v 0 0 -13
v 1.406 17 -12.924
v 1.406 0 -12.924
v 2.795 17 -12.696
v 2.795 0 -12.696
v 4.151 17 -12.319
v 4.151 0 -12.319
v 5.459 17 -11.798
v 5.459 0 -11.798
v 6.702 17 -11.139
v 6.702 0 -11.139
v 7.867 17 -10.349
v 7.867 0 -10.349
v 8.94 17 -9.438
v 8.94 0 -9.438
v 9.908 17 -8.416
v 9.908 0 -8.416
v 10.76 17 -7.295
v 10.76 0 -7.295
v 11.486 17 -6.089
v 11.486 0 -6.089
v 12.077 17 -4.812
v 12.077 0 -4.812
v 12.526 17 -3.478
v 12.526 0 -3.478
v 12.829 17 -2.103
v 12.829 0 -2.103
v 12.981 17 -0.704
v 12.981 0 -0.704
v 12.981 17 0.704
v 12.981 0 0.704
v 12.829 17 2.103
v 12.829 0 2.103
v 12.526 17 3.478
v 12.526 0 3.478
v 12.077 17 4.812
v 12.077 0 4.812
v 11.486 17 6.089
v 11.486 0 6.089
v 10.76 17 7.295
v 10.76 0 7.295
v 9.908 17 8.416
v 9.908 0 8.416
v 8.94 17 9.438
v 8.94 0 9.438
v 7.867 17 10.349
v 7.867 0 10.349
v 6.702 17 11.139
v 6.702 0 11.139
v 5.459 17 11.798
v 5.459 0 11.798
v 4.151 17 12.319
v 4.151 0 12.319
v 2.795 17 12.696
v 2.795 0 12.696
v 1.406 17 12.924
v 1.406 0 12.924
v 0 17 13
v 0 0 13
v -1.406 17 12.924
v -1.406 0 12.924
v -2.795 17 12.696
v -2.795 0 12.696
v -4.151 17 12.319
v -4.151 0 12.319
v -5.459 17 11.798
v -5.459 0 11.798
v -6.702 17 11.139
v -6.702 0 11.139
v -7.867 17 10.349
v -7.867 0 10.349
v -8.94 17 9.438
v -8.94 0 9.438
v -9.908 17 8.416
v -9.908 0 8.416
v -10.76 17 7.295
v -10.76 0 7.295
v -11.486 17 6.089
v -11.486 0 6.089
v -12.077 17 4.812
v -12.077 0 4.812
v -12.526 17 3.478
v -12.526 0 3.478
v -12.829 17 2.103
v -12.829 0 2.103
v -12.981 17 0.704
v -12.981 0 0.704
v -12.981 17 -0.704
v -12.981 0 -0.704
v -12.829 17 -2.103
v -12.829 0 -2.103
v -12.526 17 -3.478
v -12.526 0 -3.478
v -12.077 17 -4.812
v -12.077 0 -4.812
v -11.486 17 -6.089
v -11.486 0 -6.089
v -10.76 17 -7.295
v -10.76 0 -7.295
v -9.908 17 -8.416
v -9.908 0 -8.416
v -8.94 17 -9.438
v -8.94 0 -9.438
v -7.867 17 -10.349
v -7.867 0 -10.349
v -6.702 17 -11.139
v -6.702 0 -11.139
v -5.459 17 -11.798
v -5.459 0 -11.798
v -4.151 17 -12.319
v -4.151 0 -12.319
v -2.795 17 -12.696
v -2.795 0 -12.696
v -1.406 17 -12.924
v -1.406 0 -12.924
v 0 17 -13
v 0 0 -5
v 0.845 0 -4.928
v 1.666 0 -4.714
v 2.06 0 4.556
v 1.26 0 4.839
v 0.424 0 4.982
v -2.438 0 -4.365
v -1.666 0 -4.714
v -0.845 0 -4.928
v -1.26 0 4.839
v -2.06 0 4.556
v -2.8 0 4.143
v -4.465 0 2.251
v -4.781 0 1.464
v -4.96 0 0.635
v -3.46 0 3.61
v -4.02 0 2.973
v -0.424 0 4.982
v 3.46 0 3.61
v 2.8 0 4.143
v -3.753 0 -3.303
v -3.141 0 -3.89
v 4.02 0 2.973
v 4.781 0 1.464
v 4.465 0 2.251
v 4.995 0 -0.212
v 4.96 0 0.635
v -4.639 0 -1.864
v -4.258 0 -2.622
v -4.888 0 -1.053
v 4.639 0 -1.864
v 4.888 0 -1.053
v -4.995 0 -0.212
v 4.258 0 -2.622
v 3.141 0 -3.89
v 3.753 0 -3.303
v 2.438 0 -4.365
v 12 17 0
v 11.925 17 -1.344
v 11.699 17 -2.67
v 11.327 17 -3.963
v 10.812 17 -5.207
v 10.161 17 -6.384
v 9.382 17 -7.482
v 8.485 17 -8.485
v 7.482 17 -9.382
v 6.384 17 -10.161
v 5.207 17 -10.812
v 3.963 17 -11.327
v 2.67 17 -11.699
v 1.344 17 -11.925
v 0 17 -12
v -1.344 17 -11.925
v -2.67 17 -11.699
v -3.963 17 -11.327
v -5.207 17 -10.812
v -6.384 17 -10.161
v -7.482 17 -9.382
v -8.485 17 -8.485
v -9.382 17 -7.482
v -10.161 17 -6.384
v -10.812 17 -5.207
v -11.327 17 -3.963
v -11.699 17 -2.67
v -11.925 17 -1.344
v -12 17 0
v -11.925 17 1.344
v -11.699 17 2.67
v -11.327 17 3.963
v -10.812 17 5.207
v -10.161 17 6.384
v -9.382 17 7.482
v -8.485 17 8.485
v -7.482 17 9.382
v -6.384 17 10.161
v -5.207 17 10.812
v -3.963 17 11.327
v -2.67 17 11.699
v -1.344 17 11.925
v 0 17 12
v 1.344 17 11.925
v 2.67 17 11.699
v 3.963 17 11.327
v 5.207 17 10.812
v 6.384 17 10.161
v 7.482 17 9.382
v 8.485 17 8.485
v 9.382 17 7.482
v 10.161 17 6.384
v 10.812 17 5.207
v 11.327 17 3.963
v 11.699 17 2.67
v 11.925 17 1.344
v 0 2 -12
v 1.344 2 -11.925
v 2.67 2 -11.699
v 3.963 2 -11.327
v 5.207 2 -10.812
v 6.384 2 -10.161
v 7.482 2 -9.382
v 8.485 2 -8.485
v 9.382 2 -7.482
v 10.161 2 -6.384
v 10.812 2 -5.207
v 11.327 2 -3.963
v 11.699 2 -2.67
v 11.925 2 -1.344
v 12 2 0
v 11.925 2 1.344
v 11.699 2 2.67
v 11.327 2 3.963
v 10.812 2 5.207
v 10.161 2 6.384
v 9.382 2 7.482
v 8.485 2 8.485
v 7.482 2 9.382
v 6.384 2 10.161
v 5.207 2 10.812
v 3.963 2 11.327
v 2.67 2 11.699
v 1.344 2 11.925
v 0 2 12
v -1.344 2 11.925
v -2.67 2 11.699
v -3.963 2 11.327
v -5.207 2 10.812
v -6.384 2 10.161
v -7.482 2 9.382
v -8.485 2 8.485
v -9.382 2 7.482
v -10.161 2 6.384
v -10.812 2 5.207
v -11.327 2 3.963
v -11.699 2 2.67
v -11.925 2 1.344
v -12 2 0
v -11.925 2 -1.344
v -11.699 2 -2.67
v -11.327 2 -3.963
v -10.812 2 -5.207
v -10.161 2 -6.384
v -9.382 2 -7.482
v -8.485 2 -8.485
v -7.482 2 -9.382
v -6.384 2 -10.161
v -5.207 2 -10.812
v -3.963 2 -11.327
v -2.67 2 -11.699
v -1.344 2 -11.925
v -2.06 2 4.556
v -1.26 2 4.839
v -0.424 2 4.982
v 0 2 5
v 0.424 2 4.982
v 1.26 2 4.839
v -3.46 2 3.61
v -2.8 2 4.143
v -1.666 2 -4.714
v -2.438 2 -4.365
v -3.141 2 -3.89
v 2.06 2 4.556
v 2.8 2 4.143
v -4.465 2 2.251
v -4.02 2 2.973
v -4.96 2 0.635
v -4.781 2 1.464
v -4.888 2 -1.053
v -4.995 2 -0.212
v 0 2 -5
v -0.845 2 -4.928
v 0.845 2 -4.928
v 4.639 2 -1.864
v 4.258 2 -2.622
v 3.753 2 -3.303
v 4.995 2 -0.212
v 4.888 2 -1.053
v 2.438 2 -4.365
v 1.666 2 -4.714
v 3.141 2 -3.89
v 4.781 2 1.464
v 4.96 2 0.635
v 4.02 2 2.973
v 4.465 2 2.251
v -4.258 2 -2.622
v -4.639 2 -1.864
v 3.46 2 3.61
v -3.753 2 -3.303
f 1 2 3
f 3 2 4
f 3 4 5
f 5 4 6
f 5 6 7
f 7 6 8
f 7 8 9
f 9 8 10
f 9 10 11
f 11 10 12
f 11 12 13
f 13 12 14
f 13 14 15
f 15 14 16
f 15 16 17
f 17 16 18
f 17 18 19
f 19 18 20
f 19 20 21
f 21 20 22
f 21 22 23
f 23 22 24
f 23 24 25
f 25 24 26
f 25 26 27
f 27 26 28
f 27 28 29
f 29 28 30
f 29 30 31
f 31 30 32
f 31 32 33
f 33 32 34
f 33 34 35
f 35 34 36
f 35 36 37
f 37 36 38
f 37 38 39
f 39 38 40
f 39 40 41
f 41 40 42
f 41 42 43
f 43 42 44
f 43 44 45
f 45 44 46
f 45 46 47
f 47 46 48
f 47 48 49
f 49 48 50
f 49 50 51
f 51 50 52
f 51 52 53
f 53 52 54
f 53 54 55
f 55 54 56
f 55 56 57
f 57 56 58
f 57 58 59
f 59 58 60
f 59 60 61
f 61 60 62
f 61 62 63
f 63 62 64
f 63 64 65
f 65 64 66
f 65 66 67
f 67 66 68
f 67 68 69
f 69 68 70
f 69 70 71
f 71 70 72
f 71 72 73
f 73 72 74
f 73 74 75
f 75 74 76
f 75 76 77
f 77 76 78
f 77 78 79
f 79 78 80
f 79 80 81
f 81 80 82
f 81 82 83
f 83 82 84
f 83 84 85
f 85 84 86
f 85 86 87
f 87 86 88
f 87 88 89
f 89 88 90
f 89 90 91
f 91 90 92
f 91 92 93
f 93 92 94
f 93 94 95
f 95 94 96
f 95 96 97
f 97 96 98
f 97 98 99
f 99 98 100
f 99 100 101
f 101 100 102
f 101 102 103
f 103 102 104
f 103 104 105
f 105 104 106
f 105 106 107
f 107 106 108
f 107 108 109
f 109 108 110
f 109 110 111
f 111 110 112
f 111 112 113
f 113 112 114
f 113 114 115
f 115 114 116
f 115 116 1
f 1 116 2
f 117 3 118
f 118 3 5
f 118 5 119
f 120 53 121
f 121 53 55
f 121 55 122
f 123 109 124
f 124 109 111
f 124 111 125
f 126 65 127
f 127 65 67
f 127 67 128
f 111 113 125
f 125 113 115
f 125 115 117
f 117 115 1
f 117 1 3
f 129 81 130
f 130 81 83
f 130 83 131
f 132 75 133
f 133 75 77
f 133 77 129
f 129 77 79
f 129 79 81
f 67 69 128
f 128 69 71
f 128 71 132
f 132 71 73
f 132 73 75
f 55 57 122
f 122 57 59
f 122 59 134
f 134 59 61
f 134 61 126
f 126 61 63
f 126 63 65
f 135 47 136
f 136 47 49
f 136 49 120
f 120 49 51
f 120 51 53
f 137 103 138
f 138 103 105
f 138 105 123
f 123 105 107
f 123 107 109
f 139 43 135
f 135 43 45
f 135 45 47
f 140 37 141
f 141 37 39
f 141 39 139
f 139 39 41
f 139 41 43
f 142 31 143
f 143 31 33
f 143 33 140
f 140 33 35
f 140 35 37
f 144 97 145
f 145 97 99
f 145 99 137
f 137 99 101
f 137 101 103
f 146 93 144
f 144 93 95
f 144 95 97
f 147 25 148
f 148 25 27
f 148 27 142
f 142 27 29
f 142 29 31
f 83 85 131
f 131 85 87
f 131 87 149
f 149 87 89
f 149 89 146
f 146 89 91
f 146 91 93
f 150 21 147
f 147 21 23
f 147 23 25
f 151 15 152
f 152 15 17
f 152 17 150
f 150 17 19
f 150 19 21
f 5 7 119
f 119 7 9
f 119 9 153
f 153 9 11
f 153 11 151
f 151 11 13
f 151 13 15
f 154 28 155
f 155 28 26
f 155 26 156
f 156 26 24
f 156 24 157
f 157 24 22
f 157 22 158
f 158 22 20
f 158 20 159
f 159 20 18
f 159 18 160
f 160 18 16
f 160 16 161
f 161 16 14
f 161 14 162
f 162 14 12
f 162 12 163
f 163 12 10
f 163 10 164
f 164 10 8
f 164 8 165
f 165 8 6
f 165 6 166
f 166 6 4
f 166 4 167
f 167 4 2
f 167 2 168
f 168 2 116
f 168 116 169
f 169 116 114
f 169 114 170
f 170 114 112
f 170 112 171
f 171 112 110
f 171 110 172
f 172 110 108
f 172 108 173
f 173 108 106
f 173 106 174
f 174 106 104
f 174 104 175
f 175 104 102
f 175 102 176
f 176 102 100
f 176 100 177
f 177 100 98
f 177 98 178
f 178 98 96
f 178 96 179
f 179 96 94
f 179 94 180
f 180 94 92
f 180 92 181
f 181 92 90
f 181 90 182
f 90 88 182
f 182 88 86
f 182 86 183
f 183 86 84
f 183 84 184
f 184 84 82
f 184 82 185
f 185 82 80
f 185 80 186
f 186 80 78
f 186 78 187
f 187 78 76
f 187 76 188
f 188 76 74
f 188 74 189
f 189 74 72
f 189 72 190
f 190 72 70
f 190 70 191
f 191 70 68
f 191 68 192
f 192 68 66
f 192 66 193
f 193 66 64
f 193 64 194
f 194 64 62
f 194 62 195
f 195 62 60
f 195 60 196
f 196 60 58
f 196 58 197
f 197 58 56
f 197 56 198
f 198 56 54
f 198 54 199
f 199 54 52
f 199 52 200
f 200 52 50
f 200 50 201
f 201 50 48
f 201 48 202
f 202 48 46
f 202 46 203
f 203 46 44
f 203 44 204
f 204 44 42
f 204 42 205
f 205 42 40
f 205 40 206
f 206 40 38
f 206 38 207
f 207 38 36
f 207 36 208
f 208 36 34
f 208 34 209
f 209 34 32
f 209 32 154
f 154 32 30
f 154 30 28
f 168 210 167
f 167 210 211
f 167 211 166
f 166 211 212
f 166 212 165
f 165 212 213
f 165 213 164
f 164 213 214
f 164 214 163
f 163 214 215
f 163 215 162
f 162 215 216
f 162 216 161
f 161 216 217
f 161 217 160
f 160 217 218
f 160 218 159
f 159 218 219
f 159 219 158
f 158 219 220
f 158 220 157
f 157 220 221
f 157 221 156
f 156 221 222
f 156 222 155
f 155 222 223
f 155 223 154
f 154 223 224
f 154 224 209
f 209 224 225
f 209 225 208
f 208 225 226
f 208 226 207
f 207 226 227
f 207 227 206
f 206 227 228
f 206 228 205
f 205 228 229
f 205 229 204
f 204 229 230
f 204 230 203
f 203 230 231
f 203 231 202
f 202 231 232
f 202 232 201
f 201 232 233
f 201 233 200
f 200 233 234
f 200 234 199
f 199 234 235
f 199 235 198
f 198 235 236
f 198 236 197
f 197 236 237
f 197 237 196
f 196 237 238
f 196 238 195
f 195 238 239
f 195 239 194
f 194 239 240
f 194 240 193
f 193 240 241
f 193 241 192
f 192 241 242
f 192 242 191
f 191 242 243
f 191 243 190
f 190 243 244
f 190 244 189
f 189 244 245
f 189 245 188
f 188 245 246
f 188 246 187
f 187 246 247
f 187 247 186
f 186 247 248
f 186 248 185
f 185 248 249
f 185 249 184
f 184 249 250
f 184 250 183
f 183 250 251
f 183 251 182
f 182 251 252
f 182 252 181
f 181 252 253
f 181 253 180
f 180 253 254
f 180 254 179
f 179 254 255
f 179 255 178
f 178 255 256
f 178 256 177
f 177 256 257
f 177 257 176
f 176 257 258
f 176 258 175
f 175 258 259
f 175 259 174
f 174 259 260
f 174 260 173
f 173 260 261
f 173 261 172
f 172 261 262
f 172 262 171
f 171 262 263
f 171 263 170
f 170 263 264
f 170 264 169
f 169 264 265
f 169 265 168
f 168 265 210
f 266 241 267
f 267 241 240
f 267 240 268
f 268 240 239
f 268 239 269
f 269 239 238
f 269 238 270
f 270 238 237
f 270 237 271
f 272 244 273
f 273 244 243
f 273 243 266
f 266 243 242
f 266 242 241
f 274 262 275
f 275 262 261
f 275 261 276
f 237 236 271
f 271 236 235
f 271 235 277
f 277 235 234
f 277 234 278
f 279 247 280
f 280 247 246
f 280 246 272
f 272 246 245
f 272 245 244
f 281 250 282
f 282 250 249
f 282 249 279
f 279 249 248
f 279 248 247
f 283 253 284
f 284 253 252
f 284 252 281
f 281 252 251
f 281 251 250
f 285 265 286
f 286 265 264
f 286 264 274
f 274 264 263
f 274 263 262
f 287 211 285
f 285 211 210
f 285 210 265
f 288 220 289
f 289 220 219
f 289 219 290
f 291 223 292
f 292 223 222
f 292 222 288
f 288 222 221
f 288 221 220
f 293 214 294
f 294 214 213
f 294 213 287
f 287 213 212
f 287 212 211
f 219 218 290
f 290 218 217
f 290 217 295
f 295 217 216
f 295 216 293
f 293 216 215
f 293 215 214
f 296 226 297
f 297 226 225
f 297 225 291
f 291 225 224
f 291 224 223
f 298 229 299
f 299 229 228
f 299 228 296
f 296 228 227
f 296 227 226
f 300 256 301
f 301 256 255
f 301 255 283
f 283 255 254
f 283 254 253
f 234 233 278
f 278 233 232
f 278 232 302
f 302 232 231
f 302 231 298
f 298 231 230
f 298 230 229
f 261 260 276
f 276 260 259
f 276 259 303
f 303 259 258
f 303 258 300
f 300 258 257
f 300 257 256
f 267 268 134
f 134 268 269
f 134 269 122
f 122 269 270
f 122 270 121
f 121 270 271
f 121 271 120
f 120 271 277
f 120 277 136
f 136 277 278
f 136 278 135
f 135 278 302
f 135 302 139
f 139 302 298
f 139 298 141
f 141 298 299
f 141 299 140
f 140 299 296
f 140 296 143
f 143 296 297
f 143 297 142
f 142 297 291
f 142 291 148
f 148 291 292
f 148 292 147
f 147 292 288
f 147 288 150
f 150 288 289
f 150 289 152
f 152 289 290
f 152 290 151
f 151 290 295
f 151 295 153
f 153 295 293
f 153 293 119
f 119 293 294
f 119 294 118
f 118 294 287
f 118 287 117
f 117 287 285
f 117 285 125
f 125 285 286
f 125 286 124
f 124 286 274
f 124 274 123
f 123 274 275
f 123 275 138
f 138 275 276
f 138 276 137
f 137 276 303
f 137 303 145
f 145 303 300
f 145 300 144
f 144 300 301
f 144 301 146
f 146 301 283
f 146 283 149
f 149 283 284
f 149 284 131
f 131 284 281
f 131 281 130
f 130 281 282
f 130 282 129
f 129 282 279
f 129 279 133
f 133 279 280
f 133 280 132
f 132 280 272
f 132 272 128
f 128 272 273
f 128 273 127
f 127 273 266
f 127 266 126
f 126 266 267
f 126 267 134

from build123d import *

# Parameters (mm, degrees)
SKETCH1_R           = 13
BOSS_EXTRUDE2_DEPTH = 2
SKETCH2_R           = 13
SKETCH2_R_2         = 12
BOSS_EXTRUDE3_DEPTH = 15
SKETCH3_R           = 5
CUT_EXTRUDE1_DEPTH  = 15


with BuildPart() as part:
    # Sketch1 → Boss-Extrude2 (new body)
    with BuildSketch(Plane(origin=(0, 0, 0), x_dir=(1, 0, 0), z_dir=(0, 1, 0))):
        with Locations(Location((0, 0, 0), (0, 0, 270))):
            Circle(SKETCH1_R)
    extrude(amount=BOSS_EXTRUDE2_DEPTH)

    # Sketch2 → Boss-Extrude3 (add)
    with BuildSketch(Plane(origin=(0, 2, 0), x_dir=(1, 0, 0), z_dir=(0, 1, 0))):
        with Locations(Location((0, 0, 0), (0, 0, 270))):
            Circle(SKETCH2_R)
        with Locations(Location((0, 0, 0), (0, 0, 270))):
            Circle(SKETCH2_R_2, mode=Mode.SUBTRACT)
    extrude(amount=BOSS_EXTRUDE3_DEPTH)

    # Sketch3 → Cut-Extrude1 (cut)
    with BuildSketch(Plane.XZ):
        with Locations(Location((0, 0, 0), (0, 0, 270))):
            Circle(SKETCH3_R)
    extrude(amount=-CUT_EXTRUDE1_DEPTH, mode=Mode.SUBTRACT)


solid = part.part
